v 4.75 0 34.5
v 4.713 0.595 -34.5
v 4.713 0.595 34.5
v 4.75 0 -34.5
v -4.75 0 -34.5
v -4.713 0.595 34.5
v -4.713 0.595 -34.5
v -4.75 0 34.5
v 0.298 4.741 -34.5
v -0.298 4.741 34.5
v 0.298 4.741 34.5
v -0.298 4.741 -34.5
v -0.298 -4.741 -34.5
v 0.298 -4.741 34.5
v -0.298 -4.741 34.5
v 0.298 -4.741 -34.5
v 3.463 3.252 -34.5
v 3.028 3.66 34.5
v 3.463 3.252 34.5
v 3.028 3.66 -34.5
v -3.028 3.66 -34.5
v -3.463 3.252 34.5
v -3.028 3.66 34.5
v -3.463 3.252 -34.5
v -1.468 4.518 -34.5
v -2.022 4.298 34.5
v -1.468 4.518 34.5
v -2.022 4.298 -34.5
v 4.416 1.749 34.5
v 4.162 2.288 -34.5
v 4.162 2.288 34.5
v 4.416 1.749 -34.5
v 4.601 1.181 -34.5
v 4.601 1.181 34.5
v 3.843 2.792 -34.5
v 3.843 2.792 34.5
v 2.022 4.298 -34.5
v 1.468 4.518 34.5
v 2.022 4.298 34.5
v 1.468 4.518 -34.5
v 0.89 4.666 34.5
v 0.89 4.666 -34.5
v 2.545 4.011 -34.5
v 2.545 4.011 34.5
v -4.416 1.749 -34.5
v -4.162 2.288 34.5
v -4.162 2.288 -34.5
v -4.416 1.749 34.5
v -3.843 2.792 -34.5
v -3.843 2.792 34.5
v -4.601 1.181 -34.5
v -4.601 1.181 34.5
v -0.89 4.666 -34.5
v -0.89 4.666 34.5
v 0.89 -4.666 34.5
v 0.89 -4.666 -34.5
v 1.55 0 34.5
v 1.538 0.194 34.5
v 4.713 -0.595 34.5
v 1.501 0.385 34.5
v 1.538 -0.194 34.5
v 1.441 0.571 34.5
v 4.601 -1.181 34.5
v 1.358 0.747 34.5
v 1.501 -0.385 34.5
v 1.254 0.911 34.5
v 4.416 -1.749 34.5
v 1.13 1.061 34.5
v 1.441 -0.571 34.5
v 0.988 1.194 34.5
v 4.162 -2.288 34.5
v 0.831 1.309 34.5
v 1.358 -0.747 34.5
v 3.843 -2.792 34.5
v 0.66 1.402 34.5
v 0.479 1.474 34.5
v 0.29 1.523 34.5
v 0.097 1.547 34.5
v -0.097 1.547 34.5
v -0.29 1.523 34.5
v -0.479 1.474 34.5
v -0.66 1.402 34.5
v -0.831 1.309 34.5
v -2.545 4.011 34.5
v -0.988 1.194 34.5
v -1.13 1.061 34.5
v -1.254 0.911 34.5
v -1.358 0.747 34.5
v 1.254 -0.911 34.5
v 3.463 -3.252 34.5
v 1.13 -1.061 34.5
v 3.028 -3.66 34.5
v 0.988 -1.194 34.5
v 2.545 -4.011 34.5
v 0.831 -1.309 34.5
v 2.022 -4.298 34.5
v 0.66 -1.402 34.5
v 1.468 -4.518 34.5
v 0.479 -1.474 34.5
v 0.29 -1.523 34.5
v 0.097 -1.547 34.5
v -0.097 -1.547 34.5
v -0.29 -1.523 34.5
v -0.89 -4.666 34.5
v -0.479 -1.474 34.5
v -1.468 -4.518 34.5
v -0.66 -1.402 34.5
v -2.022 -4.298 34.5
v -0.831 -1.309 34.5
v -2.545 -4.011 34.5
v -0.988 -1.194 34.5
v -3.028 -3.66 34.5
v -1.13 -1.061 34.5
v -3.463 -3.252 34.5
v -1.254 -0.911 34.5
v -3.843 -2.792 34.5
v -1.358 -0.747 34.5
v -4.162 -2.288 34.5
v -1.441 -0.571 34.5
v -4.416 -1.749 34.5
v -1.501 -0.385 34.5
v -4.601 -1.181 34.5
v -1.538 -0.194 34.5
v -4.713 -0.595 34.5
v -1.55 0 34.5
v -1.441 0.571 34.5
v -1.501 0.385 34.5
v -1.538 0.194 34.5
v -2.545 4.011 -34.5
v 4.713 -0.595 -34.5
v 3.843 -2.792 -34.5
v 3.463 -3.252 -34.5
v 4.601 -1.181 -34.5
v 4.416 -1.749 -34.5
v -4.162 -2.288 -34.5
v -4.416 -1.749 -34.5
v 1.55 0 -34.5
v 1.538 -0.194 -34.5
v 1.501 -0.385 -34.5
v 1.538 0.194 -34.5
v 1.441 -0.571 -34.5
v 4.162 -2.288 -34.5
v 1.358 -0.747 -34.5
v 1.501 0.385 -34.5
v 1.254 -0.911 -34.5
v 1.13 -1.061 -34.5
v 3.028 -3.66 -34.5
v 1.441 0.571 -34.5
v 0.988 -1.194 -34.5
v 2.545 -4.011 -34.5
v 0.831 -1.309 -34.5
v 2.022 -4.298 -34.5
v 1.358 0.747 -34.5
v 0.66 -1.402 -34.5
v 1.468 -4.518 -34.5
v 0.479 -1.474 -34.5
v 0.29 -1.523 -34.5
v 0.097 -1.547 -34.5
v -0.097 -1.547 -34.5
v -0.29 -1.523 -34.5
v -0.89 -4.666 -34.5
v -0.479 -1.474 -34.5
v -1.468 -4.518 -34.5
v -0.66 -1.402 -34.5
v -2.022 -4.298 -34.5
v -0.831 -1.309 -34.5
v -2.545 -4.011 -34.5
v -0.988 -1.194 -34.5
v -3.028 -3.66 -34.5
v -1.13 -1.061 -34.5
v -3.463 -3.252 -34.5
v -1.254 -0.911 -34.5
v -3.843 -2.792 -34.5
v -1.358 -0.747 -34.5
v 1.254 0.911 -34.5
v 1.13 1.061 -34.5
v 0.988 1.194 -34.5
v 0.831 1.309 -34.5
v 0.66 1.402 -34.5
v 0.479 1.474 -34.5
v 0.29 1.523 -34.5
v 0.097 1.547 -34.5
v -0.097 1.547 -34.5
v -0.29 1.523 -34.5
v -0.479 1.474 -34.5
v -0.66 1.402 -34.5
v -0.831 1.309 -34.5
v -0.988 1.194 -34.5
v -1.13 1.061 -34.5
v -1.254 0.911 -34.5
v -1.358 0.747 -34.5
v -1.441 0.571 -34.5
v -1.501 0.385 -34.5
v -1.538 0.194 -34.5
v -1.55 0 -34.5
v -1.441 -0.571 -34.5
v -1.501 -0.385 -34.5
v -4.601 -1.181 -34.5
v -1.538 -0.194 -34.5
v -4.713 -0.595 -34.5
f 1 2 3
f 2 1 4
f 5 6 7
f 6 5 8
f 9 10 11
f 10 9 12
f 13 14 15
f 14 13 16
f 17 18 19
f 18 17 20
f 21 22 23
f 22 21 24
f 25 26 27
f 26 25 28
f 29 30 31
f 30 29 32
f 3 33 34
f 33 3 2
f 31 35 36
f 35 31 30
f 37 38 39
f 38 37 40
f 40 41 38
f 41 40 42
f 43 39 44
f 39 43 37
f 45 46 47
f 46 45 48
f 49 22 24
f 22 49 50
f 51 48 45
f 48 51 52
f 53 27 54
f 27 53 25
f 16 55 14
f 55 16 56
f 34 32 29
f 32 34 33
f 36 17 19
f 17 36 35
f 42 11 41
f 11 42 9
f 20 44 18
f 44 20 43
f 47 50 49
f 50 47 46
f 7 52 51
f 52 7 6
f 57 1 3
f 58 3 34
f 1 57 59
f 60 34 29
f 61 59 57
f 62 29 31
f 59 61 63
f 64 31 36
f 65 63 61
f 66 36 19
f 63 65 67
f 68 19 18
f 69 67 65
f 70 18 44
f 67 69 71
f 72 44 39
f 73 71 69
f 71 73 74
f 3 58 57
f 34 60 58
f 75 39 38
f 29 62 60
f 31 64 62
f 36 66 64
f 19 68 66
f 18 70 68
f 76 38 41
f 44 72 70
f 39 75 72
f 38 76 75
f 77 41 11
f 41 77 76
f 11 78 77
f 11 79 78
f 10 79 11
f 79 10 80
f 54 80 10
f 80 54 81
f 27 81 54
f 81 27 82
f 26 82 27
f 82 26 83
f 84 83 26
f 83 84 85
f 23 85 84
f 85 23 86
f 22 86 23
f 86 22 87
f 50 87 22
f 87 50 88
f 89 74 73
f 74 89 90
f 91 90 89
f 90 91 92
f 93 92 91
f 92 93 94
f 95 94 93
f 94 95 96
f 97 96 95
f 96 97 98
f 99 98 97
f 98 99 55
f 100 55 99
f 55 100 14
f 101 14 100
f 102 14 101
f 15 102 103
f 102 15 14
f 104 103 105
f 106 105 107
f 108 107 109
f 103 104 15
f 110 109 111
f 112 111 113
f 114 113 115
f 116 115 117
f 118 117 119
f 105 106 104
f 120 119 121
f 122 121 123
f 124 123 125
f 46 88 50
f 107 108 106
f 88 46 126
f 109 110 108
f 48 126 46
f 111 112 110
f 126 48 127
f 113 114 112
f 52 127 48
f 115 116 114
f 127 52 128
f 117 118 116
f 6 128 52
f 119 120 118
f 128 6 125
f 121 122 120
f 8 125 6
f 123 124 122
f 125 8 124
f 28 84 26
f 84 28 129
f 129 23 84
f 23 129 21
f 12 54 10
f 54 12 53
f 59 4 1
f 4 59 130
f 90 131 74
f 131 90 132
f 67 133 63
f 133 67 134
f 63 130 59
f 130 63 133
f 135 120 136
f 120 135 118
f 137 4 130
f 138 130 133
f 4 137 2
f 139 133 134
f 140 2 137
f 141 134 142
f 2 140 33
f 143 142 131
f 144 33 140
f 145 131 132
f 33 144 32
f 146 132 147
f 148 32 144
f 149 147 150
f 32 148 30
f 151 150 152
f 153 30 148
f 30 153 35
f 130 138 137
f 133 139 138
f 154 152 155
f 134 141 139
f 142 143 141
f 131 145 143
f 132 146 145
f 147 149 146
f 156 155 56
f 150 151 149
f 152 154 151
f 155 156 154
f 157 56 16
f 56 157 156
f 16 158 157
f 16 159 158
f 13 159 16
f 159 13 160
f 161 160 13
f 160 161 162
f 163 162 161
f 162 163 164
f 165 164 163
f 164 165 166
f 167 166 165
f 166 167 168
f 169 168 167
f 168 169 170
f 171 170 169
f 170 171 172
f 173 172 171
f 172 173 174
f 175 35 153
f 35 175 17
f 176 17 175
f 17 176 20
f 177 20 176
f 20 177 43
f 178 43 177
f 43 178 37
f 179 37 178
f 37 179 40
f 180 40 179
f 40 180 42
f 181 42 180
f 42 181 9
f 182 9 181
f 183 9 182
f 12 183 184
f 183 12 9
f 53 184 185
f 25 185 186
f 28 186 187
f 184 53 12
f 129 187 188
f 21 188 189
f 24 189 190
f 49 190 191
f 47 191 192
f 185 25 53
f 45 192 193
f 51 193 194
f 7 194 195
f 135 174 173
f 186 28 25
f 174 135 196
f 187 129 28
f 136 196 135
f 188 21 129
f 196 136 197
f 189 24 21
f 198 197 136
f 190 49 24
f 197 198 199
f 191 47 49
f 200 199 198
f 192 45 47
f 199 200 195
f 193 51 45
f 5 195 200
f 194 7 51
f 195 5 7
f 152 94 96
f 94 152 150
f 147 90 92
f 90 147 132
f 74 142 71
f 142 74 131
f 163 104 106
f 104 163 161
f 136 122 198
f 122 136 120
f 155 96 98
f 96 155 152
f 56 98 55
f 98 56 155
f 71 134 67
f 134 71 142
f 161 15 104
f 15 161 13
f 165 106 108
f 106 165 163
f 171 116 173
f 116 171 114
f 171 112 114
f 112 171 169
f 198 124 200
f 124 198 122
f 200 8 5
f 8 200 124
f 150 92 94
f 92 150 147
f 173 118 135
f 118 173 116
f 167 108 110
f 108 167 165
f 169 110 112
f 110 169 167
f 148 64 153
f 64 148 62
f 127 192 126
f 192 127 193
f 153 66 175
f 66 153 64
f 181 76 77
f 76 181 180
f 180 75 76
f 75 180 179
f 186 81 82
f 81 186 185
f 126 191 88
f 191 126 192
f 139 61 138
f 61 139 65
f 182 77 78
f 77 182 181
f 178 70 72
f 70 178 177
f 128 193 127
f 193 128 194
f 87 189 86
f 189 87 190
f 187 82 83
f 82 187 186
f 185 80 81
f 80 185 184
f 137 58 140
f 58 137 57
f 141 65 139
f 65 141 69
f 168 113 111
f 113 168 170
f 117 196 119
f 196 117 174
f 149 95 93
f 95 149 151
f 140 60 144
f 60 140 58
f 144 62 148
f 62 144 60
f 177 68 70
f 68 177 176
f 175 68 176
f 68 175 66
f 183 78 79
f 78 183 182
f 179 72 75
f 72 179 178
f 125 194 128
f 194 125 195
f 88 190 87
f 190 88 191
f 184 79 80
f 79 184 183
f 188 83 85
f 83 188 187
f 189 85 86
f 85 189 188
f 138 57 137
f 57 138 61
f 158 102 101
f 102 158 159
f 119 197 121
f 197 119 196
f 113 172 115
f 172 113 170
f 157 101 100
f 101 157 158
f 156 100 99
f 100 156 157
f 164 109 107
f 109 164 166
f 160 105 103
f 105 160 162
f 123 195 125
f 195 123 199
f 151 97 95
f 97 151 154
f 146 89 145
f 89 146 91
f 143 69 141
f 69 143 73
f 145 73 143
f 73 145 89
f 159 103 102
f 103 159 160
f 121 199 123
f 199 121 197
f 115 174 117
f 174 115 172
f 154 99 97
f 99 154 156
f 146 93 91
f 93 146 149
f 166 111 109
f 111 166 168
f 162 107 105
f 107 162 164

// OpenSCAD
$fn = 50;


difference() {
	union() {
		translate(v = [0, 0, -34.5000000000]) {
			cylinder(h = 69, r = 4.7500000000);
		}
	}
	union() {
		translate(v = [0, 0, -100.0000000000]) {
			cylinder(h = 200, r = 1.5500000000);
		}
	}
}
